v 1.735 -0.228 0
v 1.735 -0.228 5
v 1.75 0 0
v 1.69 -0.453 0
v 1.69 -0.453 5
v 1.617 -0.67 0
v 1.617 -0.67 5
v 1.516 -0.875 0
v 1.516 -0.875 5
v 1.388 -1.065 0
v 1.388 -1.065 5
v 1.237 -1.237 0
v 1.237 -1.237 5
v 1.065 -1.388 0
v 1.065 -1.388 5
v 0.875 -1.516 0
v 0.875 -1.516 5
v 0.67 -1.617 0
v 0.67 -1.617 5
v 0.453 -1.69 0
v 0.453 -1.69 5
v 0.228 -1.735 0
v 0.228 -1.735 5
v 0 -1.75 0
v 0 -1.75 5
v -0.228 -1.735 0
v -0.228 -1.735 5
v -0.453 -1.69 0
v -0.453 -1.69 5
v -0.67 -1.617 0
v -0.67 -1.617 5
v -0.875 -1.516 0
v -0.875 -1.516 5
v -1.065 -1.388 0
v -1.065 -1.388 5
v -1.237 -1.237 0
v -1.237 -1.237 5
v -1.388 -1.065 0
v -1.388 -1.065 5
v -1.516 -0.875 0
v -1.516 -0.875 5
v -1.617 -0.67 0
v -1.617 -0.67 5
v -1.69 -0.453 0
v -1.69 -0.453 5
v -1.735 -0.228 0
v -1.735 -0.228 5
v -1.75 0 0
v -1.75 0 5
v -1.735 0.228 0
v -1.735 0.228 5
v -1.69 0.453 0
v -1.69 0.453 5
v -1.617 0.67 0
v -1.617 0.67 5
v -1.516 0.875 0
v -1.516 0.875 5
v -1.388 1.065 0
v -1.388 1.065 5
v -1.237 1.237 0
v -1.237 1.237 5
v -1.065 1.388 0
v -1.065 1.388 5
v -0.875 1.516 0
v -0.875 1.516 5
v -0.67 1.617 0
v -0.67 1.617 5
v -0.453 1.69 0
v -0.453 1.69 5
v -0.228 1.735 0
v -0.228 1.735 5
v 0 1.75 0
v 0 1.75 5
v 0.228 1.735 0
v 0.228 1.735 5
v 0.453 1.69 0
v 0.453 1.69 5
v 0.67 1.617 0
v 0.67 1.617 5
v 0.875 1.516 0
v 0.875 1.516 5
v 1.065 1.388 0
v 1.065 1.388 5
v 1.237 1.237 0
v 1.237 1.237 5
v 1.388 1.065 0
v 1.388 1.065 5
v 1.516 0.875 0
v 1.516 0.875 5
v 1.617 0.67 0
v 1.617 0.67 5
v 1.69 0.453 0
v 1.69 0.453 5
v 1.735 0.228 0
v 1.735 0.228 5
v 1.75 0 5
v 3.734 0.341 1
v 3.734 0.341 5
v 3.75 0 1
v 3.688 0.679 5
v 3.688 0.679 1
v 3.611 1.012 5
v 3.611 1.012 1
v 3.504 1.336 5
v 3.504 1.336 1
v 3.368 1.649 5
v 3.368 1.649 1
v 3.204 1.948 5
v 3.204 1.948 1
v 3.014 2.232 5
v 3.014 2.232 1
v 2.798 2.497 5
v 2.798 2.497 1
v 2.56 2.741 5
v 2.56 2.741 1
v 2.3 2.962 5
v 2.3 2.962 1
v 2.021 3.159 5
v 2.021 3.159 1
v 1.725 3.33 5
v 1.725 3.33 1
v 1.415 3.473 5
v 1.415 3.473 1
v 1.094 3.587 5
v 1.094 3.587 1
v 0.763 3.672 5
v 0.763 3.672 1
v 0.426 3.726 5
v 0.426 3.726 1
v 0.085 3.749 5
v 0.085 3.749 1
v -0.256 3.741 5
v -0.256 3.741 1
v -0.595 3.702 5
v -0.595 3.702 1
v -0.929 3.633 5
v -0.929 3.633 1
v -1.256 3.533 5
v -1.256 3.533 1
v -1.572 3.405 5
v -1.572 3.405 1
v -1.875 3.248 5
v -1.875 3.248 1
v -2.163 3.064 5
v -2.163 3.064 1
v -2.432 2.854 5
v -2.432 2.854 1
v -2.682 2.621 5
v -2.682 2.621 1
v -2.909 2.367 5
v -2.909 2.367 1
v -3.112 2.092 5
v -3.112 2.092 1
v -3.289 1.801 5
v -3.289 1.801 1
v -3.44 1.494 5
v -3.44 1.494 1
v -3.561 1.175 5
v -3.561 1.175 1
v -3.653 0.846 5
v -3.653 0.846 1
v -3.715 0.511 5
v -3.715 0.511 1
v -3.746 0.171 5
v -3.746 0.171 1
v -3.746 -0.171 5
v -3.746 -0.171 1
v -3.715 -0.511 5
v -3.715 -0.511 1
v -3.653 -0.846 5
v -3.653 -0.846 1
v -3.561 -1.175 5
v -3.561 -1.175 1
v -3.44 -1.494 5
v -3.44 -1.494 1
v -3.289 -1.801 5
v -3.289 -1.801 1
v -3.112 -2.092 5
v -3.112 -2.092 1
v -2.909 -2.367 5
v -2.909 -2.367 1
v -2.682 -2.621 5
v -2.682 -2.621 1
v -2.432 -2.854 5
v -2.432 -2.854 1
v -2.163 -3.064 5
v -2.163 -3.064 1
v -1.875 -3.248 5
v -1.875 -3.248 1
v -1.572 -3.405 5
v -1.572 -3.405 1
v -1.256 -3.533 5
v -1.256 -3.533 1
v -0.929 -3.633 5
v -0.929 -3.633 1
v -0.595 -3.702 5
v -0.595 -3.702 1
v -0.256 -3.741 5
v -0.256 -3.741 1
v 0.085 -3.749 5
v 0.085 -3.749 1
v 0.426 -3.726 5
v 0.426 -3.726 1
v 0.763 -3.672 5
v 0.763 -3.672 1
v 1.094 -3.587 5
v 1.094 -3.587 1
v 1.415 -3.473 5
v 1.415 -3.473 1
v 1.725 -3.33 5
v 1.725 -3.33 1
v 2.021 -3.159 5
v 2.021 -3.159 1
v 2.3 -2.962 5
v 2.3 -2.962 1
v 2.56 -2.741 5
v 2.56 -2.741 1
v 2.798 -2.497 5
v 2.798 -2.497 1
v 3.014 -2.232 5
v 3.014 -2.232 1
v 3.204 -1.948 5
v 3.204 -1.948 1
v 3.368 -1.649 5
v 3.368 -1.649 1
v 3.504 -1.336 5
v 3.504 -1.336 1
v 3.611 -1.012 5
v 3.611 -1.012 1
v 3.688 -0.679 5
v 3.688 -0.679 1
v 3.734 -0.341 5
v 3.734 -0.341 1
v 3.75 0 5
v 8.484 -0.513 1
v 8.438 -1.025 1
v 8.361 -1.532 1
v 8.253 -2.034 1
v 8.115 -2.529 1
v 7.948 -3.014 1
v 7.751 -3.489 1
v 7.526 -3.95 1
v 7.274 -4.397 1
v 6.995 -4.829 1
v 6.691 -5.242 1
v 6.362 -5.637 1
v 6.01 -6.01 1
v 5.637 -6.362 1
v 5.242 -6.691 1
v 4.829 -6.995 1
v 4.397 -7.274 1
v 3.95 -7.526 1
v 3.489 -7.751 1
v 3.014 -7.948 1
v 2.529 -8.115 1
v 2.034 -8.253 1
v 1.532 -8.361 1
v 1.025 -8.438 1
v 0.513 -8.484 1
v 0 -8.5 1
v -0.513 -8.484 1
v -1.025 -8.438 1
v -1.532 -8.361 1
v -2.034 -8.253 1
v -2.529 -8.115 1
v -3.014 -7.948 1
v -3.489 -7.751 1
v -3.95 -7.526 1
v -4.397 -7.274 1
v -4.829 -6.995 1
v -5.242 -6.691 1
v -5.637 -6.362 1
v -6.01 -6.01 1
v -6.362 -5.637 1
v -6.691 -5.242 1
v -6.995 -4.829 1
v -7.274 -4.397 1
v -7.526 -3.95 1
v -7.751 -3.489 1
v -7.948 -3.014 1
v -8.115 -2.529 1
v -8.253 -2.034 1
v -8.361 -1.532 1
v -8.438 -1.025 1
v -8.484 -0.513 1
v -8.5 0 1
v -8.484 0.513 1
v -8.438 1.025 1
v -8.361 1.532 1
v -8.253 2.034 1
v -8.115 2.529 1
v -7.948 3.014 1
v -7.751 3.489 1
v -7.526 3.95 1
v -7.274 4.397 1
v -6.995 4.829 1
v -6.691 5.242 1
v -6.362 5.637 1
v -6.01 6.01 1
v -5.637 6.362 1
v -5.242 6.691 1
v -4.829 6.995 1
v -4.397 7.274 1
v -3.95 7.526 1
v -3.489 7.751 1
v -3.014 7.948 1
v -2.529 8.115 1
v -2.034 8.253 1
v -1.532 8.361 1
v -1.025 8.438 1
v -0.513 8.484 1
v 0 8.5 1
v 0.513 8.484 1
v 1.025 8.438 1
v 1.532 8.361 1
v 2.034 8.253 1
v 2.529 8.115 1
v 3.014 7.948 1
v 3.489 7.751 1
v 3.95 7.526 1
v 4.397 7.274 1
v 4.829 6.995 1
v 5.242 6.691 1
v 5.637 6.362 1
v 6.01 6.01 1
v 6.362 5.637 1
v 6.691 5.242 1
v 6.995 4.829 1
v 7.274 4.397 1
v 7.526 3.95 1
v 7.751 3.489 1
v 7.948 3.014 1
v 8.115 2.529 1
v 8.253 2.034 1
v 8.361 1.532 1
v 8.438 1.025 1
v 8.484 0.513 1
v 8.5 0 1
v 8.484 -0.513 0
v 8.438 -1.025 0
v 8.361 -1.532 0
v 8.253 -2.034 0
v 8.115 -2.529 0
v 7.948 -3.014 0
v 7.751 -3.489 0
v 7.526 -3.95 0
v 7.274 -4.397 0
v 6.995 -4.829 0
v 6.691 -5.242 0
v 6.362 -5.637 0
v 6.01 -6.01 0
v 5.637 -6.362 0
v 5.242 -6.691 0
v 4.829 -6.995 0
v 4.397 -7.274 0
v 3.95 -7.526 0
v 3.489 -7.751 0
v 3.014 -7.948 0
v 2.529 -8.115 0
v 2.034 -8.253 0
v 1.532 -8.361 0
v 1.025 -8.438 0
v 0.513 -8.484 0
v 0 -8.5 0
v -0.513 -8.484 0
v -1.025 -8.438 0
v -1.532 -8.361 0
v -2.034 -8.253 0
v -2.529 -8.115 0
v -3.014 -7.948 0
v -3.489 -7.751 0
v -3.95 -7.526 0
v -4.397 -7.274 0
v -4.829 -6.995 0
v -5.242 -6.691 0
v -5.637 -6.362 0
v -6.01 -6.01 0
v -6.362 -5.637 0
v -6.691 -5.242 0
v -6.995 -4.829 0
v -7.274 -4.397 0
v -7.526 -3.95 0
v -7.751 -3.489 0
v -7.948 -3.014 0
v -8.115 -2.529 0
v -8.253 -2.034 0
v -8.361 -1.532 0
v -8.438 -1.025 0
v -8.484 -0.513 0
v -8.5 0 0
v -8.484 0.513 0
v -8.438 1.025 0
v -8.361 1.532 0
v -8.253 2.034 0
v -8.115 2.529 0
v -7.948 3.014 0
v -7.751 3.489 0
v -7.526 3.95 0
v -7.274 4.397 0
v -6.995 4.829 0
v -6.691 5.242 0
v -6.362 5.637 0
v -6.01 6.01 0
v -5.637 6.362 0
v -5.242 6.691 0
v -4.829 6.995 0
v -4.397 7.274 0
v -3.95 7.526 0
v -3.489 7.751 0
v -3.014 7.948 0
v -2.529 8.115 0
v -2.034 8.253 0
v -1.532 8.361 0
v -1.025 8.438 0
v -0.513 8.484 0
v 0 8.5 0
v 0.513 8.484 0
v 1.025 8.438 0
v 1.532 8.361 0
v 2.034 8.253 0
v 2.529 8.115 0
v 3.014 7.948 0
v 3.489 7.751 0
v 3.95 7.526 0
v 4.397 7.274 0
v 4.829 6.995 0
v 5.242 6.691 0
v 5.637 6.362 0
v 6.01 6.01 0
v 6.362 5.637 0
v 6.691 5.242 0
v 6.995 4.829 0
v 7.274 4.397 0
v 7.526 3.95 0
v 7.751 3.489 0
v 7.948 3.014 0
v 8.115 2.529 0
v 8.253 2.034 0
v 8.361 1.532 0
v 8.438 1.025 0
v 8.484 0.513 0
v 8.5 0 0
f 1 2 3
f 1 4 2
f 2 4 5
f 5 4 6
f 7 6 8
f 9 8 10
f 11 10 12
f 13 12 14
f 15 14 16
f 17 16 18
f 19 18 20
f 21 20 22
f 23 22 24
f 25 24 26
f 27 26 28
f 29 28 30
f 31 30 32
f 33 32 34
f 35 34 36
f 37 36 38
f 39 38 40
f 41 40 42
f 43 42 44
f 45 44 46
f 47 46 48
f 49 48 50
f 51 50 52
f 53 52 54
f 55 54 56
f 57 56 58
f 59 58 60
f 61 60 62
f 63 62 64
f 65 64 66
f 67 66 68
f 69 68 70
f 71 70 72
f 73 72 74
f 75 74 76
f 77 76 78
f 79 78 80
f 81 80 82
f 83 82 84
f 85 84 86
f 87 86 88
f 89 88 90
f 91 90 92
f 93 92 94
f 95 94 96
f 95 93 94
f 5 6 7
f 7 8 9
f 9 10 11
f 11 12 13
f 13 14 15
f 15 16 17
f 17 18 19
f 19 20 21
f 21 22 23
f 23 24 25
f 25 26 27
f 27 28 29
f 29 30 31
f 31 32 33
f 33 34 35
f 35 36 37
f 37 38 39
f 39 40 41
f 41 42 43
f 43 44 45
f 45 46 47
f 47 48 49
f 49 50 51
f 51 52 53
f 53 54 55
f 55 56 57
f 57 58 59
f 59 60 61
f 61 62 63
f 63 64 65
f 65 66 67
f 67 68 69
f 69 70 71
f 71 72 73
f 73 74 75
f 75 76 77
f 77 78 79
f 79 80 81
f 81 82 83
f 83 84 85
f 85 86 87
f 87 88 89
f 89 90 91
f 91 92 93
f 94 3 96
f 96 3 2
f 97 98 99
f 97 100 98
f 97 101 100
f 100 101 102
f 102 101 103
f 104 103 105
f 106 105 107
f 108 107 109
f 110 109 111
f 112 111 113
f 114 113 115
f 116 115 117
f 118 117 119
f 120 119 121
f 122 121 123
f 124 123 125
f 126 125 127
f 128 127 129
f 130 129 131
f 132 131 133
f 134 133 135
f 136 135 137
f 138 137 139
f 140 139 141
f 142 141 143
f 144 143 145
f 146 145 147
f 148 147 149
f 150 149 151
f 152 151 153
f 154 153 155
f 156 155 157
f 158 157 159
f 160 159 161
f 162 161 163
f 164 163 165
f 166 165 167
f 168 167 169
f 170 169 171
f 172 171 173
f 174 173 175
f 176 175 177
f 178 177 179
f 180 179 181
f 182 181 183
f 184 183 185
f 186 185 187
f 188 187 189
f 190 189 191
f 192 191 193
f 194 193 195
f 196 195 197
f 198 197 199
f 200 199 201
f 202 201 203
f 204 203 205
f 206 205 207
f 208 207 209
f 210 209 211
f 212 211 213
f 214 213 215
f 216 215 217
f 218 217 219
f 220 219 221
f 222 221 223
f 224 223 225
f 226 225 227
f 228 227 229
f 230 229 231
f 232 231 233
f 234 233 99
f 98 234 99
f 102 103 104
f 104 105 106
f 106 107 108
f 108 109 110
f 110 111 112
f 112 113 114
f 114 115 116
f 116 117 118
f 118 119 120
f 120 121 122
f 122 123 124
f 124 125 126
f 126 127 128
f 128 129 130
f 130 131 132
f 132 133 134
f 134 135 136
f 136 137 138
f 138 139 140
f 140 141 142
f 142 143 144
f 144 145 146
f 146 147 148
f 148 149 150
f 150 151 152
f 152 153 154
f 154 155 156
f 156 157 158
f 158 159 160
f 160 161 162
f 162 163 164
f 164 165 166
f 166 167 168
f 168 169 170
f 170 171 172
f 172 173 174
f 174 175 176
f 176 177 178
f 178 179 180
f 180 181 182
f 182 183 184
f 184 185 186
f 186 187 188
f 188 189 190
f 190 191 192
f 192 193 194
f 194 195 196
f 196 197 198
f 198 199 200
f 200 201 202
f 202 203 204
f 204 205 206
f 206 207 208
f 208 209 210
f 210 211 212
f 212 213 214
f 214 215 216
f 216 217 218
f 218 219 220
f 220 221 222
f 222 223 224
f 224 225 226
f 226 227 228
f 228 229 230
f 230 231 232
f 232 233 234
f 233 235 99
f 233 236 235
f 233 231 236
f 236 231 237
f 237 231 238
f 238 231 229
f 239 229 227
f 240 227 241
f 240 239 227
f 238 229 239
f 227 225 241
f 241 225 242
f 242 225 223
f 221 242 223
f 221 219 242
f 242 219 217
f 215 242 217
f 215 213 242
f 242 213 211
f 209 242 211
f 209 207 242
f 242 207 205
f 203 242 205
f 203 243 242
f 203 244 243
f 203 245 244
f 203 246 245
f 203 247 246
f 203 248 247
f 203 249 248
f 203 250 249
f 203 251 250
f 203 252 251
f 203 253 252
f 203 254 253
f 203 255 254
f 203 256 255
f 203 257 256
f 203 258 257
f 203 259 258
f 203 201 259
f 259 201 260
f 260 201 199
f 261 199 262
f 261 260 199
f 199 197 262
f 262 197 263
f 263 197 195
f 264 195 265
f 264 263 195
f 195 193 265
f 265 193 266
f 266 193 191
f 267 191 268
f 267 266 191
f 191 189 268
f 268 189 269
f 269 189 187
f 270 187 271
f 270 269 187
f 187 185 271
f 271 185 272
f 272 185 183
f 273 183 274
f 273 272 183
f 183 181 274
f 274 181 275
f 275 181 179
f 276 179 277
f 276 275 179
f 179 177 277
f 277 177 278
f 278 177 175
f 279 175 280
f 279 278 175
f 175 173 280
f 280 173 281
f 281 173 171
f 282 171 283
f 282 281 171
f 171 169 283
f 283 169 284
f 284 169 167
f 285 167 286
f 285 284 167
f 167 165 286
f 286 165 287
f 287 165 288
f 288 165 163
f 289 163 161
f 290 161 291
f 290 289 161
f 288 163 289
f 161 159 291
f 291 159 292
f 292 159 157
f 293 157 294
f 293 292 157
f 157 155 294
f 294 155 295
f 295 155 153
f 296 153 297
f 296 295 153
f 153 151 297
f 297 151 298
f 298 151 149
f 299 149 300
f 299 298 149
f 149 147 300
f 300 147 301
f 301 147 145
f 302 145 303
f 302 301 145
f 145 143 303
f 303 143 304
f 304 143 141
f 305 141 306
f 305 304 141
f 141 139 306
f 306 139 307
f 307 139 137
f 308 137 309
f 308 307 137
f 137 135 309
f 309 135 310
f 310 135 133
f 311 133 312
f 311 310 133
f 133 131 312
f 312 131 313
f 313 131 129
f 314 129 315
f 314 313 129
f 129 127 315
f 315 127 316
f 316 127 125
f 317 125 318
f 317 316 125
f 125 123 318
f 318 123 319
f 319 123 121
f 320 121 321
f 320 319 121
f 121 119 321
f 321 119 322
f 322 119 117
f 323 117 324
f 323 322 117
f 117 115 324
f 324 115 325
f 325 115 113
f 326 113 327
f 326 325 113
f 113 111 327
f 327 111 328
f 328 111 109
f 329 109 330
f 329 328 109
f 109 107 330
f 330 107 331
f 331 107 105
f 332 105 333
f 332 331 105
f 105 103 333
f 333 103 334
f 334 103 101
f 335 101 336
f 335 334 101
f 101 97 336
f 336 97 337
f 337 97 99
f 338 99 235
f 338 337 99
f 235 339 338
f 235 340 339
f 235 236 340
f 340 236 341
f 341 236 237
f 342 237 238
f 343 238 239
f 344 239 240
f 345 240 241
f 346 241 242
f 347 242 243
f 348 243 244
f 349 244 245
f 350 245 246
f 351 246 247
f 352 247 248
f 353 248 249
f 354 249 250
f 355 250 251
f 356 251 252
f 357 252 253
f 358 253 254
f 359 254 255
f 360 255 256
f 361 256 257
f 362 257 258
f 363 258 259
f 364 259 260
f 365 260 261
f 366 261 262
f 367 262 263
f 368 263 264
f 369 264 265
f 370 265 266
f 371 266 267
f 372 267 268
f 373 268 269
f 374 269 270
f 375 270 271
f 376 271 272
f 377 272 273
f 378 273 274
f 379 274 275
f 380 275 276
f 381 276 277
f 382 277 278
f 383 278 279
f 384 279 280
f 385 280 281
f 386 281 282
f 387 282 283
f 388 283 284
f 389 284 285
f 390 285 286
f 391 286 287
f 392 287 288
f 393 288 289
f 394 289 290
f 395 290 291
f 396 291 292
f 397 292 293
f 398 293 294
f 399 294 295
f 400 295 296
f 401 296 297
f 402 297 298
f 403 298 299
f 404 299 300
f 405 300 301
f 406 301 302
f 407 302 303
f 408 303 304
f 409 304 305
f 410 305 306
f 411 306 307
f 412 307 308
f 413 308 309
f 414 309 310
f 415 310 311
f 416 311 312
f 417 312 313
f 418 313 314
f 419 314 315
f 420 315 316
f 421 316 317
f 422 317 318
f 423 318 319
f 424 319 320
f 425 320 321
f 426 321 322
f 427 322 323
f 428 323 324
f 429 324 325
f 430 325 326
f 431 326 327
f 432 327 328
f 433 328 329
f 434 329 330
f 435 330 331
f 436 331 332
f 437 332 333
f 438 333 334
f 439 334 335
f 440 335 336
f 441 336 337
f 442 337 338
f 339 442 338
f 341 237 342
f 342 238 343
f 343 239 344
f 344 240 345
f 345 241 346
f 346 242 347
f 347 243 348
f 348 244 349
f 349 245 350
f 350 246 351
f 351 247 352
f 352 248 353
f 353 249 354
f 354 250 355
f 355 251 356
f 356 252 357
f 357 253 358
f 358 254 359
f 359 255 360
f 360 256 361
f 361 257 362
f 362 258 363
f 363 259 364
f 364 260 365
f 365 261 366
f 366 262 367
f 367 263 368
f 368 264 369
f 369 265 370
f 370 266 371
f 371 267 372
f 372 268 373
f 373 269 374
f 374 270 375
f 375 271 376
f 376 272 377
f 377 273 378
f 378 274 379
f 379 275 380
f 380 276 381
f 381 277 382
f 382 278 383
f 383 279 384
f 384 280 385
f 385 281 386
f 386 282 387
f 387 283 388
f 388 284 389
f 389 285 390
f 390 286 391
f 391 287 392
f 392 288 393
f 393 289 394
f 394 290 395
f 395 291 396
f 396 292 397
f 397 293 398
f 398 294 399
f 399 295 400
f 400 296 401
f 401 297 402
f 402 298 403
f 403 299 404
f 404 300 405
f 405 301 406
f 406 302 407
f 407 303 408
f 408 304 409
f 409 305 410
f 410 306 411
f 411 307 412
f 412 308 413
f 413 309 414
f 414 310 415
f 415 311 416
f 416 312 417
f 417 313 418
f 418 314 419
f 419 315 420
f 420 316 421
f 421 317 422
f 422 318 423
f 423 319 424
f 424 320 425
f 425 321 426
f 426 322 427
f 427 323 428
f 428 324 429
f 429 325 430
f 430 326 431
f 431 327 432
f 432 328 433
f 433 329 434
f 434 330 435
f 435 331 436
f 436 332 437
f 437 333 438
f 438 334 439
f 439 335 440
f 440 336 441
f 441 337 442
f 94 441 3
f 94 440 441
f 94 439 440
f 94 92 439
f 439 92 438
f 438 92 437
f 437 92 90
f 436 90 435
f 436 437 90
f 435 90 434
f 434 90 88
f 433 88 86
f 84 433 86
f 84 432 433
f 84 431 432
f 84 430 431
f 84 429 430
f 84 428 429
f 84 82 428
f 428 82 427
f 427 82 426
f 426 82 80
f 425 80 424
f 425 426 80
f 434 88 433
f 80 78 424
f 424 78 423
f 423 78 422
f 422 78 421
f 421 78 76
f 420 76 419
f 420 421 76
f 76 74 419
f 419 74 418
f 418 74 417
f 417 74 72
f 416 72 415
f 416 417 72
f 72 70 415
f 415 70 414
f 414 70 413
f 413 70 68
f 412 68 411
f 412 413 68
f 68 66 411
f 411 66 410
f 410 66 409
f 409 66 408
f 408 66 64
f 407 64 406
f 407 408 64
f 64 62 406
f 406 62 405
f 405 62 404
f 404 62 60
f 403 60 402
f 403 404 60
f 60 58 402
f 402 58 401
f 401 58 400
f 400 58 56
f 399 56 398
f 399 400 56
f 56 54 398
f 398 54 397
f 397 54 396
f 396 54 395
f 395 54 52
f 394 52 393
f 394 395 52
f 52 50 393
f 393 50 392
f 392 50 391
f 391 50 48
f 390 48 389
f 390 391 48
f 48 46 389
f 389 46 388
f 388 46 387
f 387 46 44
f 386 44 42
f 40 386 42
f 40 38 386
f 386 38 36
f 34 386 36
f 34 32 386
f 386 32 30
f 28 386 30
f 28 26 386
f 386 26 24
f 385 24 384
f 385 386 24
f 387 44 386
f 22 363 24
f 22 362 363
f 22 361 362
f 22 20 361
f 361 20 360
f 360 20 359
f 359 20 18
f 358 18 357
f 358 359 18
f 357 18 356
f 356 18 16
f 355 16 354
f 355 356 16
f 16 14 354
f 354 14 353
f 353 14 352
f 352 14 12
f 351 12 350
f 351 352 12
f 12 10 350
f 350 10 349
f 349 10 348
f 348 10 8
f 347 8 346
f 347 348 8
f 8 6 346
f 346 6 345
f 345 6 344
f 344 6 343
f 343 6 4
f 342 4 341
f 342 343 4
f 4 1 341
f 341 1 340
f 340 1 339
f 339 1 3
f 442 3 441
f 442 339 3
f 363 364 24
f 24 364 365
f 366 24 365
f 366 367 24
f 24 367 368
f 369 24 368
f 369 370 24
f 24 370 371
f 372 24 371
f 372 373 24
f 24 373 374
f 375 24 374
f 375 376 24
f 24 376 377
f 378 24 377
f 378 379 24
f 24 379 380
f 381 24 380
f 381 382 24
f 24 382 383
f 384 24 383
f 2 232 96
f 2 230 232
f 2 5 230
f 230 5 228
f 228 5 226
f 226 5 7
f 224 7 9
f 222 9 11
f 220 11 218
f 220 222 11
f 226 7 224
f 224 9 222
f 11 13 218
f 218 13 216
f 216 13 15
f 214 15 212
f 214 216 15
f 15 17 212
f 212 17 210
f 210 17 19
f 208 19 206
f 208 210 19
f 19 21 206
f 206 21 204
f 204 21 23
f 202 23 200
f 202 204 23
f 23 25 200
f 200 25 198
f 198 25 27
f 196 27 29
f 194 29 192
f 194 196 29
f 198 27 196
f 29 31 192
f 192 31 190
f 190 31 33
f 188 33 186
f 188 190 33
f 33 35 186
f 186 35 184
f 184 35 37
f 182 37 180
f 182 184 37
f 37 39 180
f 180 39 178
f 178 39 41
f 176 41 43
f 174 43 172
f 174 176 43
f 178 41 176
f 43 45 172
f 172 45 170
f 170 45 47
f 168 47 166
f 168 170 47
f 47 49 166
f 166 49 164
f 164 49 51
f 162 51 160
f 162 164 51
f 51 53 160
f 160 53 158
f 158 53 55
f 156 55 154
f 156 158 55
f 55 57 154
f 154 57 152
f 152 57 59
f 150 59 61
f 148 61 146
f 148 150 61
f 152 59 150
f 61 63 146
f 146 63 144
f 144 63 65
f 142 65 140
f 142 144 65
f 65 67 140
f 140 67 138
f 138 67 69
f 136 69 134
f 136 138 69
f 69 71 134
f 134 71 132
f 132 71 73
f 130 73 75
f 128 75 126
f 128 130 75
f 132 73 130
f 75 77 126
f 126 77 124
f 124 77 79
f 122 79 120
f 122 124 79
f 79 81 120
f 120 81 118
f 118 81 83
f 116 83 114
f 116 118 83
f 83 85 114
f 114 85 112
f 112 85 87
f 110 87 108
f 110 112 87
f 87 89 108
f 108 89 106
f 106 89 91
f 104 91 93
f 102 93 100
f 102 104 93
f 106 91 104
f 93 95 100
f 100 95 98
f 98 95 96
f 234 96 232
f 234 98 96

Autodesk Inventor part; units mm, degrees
ref_plane "YZ Plane" through (0, 0, 0) normal (1, 0, 0) x (0, 1, 0)
ref_plane "XZ Plane" through (0, 0, 0) normal (0, 1, 0) x (-1, 0, 0)
ref_plane "XY Plane" through (0, 0, 0) normal (0, 0, 1) x (1, 0, 0)
sketch "Sketch1" plane through (0, 0, 0) normal (0, 0, 1) x (1, 0, 0)
  circle A0 centre (0, 0) radius 8.5
  dimension "d0" = 17
extrude "Extrusion1" add sketch "Sketch1" along normal blind 5
sketch "Sketch2" plane through (0, 0, 5) normal (0, 0, 1) x (1, 0, 0)
  circle A0 centre (0, 0) radius 3.75
  circle A1 centre (0, 0) radius 8.5 projected
  dimension "d3" = 7.5
extrude "Extrusion2" cut sketch "Sketch2" against normal blind 4
sketch "Sketch3" plane through (0, 0, 5) normal (0, 0, 1) x (1, 0, 0)
  circle A0 centre (0, 0) radius 1.75
  dimension "d6" = 3.5
extrude "Extrusion3" cut sketch "Sketch3" against normal through all
properties part number "fijador.rodamiento02"
